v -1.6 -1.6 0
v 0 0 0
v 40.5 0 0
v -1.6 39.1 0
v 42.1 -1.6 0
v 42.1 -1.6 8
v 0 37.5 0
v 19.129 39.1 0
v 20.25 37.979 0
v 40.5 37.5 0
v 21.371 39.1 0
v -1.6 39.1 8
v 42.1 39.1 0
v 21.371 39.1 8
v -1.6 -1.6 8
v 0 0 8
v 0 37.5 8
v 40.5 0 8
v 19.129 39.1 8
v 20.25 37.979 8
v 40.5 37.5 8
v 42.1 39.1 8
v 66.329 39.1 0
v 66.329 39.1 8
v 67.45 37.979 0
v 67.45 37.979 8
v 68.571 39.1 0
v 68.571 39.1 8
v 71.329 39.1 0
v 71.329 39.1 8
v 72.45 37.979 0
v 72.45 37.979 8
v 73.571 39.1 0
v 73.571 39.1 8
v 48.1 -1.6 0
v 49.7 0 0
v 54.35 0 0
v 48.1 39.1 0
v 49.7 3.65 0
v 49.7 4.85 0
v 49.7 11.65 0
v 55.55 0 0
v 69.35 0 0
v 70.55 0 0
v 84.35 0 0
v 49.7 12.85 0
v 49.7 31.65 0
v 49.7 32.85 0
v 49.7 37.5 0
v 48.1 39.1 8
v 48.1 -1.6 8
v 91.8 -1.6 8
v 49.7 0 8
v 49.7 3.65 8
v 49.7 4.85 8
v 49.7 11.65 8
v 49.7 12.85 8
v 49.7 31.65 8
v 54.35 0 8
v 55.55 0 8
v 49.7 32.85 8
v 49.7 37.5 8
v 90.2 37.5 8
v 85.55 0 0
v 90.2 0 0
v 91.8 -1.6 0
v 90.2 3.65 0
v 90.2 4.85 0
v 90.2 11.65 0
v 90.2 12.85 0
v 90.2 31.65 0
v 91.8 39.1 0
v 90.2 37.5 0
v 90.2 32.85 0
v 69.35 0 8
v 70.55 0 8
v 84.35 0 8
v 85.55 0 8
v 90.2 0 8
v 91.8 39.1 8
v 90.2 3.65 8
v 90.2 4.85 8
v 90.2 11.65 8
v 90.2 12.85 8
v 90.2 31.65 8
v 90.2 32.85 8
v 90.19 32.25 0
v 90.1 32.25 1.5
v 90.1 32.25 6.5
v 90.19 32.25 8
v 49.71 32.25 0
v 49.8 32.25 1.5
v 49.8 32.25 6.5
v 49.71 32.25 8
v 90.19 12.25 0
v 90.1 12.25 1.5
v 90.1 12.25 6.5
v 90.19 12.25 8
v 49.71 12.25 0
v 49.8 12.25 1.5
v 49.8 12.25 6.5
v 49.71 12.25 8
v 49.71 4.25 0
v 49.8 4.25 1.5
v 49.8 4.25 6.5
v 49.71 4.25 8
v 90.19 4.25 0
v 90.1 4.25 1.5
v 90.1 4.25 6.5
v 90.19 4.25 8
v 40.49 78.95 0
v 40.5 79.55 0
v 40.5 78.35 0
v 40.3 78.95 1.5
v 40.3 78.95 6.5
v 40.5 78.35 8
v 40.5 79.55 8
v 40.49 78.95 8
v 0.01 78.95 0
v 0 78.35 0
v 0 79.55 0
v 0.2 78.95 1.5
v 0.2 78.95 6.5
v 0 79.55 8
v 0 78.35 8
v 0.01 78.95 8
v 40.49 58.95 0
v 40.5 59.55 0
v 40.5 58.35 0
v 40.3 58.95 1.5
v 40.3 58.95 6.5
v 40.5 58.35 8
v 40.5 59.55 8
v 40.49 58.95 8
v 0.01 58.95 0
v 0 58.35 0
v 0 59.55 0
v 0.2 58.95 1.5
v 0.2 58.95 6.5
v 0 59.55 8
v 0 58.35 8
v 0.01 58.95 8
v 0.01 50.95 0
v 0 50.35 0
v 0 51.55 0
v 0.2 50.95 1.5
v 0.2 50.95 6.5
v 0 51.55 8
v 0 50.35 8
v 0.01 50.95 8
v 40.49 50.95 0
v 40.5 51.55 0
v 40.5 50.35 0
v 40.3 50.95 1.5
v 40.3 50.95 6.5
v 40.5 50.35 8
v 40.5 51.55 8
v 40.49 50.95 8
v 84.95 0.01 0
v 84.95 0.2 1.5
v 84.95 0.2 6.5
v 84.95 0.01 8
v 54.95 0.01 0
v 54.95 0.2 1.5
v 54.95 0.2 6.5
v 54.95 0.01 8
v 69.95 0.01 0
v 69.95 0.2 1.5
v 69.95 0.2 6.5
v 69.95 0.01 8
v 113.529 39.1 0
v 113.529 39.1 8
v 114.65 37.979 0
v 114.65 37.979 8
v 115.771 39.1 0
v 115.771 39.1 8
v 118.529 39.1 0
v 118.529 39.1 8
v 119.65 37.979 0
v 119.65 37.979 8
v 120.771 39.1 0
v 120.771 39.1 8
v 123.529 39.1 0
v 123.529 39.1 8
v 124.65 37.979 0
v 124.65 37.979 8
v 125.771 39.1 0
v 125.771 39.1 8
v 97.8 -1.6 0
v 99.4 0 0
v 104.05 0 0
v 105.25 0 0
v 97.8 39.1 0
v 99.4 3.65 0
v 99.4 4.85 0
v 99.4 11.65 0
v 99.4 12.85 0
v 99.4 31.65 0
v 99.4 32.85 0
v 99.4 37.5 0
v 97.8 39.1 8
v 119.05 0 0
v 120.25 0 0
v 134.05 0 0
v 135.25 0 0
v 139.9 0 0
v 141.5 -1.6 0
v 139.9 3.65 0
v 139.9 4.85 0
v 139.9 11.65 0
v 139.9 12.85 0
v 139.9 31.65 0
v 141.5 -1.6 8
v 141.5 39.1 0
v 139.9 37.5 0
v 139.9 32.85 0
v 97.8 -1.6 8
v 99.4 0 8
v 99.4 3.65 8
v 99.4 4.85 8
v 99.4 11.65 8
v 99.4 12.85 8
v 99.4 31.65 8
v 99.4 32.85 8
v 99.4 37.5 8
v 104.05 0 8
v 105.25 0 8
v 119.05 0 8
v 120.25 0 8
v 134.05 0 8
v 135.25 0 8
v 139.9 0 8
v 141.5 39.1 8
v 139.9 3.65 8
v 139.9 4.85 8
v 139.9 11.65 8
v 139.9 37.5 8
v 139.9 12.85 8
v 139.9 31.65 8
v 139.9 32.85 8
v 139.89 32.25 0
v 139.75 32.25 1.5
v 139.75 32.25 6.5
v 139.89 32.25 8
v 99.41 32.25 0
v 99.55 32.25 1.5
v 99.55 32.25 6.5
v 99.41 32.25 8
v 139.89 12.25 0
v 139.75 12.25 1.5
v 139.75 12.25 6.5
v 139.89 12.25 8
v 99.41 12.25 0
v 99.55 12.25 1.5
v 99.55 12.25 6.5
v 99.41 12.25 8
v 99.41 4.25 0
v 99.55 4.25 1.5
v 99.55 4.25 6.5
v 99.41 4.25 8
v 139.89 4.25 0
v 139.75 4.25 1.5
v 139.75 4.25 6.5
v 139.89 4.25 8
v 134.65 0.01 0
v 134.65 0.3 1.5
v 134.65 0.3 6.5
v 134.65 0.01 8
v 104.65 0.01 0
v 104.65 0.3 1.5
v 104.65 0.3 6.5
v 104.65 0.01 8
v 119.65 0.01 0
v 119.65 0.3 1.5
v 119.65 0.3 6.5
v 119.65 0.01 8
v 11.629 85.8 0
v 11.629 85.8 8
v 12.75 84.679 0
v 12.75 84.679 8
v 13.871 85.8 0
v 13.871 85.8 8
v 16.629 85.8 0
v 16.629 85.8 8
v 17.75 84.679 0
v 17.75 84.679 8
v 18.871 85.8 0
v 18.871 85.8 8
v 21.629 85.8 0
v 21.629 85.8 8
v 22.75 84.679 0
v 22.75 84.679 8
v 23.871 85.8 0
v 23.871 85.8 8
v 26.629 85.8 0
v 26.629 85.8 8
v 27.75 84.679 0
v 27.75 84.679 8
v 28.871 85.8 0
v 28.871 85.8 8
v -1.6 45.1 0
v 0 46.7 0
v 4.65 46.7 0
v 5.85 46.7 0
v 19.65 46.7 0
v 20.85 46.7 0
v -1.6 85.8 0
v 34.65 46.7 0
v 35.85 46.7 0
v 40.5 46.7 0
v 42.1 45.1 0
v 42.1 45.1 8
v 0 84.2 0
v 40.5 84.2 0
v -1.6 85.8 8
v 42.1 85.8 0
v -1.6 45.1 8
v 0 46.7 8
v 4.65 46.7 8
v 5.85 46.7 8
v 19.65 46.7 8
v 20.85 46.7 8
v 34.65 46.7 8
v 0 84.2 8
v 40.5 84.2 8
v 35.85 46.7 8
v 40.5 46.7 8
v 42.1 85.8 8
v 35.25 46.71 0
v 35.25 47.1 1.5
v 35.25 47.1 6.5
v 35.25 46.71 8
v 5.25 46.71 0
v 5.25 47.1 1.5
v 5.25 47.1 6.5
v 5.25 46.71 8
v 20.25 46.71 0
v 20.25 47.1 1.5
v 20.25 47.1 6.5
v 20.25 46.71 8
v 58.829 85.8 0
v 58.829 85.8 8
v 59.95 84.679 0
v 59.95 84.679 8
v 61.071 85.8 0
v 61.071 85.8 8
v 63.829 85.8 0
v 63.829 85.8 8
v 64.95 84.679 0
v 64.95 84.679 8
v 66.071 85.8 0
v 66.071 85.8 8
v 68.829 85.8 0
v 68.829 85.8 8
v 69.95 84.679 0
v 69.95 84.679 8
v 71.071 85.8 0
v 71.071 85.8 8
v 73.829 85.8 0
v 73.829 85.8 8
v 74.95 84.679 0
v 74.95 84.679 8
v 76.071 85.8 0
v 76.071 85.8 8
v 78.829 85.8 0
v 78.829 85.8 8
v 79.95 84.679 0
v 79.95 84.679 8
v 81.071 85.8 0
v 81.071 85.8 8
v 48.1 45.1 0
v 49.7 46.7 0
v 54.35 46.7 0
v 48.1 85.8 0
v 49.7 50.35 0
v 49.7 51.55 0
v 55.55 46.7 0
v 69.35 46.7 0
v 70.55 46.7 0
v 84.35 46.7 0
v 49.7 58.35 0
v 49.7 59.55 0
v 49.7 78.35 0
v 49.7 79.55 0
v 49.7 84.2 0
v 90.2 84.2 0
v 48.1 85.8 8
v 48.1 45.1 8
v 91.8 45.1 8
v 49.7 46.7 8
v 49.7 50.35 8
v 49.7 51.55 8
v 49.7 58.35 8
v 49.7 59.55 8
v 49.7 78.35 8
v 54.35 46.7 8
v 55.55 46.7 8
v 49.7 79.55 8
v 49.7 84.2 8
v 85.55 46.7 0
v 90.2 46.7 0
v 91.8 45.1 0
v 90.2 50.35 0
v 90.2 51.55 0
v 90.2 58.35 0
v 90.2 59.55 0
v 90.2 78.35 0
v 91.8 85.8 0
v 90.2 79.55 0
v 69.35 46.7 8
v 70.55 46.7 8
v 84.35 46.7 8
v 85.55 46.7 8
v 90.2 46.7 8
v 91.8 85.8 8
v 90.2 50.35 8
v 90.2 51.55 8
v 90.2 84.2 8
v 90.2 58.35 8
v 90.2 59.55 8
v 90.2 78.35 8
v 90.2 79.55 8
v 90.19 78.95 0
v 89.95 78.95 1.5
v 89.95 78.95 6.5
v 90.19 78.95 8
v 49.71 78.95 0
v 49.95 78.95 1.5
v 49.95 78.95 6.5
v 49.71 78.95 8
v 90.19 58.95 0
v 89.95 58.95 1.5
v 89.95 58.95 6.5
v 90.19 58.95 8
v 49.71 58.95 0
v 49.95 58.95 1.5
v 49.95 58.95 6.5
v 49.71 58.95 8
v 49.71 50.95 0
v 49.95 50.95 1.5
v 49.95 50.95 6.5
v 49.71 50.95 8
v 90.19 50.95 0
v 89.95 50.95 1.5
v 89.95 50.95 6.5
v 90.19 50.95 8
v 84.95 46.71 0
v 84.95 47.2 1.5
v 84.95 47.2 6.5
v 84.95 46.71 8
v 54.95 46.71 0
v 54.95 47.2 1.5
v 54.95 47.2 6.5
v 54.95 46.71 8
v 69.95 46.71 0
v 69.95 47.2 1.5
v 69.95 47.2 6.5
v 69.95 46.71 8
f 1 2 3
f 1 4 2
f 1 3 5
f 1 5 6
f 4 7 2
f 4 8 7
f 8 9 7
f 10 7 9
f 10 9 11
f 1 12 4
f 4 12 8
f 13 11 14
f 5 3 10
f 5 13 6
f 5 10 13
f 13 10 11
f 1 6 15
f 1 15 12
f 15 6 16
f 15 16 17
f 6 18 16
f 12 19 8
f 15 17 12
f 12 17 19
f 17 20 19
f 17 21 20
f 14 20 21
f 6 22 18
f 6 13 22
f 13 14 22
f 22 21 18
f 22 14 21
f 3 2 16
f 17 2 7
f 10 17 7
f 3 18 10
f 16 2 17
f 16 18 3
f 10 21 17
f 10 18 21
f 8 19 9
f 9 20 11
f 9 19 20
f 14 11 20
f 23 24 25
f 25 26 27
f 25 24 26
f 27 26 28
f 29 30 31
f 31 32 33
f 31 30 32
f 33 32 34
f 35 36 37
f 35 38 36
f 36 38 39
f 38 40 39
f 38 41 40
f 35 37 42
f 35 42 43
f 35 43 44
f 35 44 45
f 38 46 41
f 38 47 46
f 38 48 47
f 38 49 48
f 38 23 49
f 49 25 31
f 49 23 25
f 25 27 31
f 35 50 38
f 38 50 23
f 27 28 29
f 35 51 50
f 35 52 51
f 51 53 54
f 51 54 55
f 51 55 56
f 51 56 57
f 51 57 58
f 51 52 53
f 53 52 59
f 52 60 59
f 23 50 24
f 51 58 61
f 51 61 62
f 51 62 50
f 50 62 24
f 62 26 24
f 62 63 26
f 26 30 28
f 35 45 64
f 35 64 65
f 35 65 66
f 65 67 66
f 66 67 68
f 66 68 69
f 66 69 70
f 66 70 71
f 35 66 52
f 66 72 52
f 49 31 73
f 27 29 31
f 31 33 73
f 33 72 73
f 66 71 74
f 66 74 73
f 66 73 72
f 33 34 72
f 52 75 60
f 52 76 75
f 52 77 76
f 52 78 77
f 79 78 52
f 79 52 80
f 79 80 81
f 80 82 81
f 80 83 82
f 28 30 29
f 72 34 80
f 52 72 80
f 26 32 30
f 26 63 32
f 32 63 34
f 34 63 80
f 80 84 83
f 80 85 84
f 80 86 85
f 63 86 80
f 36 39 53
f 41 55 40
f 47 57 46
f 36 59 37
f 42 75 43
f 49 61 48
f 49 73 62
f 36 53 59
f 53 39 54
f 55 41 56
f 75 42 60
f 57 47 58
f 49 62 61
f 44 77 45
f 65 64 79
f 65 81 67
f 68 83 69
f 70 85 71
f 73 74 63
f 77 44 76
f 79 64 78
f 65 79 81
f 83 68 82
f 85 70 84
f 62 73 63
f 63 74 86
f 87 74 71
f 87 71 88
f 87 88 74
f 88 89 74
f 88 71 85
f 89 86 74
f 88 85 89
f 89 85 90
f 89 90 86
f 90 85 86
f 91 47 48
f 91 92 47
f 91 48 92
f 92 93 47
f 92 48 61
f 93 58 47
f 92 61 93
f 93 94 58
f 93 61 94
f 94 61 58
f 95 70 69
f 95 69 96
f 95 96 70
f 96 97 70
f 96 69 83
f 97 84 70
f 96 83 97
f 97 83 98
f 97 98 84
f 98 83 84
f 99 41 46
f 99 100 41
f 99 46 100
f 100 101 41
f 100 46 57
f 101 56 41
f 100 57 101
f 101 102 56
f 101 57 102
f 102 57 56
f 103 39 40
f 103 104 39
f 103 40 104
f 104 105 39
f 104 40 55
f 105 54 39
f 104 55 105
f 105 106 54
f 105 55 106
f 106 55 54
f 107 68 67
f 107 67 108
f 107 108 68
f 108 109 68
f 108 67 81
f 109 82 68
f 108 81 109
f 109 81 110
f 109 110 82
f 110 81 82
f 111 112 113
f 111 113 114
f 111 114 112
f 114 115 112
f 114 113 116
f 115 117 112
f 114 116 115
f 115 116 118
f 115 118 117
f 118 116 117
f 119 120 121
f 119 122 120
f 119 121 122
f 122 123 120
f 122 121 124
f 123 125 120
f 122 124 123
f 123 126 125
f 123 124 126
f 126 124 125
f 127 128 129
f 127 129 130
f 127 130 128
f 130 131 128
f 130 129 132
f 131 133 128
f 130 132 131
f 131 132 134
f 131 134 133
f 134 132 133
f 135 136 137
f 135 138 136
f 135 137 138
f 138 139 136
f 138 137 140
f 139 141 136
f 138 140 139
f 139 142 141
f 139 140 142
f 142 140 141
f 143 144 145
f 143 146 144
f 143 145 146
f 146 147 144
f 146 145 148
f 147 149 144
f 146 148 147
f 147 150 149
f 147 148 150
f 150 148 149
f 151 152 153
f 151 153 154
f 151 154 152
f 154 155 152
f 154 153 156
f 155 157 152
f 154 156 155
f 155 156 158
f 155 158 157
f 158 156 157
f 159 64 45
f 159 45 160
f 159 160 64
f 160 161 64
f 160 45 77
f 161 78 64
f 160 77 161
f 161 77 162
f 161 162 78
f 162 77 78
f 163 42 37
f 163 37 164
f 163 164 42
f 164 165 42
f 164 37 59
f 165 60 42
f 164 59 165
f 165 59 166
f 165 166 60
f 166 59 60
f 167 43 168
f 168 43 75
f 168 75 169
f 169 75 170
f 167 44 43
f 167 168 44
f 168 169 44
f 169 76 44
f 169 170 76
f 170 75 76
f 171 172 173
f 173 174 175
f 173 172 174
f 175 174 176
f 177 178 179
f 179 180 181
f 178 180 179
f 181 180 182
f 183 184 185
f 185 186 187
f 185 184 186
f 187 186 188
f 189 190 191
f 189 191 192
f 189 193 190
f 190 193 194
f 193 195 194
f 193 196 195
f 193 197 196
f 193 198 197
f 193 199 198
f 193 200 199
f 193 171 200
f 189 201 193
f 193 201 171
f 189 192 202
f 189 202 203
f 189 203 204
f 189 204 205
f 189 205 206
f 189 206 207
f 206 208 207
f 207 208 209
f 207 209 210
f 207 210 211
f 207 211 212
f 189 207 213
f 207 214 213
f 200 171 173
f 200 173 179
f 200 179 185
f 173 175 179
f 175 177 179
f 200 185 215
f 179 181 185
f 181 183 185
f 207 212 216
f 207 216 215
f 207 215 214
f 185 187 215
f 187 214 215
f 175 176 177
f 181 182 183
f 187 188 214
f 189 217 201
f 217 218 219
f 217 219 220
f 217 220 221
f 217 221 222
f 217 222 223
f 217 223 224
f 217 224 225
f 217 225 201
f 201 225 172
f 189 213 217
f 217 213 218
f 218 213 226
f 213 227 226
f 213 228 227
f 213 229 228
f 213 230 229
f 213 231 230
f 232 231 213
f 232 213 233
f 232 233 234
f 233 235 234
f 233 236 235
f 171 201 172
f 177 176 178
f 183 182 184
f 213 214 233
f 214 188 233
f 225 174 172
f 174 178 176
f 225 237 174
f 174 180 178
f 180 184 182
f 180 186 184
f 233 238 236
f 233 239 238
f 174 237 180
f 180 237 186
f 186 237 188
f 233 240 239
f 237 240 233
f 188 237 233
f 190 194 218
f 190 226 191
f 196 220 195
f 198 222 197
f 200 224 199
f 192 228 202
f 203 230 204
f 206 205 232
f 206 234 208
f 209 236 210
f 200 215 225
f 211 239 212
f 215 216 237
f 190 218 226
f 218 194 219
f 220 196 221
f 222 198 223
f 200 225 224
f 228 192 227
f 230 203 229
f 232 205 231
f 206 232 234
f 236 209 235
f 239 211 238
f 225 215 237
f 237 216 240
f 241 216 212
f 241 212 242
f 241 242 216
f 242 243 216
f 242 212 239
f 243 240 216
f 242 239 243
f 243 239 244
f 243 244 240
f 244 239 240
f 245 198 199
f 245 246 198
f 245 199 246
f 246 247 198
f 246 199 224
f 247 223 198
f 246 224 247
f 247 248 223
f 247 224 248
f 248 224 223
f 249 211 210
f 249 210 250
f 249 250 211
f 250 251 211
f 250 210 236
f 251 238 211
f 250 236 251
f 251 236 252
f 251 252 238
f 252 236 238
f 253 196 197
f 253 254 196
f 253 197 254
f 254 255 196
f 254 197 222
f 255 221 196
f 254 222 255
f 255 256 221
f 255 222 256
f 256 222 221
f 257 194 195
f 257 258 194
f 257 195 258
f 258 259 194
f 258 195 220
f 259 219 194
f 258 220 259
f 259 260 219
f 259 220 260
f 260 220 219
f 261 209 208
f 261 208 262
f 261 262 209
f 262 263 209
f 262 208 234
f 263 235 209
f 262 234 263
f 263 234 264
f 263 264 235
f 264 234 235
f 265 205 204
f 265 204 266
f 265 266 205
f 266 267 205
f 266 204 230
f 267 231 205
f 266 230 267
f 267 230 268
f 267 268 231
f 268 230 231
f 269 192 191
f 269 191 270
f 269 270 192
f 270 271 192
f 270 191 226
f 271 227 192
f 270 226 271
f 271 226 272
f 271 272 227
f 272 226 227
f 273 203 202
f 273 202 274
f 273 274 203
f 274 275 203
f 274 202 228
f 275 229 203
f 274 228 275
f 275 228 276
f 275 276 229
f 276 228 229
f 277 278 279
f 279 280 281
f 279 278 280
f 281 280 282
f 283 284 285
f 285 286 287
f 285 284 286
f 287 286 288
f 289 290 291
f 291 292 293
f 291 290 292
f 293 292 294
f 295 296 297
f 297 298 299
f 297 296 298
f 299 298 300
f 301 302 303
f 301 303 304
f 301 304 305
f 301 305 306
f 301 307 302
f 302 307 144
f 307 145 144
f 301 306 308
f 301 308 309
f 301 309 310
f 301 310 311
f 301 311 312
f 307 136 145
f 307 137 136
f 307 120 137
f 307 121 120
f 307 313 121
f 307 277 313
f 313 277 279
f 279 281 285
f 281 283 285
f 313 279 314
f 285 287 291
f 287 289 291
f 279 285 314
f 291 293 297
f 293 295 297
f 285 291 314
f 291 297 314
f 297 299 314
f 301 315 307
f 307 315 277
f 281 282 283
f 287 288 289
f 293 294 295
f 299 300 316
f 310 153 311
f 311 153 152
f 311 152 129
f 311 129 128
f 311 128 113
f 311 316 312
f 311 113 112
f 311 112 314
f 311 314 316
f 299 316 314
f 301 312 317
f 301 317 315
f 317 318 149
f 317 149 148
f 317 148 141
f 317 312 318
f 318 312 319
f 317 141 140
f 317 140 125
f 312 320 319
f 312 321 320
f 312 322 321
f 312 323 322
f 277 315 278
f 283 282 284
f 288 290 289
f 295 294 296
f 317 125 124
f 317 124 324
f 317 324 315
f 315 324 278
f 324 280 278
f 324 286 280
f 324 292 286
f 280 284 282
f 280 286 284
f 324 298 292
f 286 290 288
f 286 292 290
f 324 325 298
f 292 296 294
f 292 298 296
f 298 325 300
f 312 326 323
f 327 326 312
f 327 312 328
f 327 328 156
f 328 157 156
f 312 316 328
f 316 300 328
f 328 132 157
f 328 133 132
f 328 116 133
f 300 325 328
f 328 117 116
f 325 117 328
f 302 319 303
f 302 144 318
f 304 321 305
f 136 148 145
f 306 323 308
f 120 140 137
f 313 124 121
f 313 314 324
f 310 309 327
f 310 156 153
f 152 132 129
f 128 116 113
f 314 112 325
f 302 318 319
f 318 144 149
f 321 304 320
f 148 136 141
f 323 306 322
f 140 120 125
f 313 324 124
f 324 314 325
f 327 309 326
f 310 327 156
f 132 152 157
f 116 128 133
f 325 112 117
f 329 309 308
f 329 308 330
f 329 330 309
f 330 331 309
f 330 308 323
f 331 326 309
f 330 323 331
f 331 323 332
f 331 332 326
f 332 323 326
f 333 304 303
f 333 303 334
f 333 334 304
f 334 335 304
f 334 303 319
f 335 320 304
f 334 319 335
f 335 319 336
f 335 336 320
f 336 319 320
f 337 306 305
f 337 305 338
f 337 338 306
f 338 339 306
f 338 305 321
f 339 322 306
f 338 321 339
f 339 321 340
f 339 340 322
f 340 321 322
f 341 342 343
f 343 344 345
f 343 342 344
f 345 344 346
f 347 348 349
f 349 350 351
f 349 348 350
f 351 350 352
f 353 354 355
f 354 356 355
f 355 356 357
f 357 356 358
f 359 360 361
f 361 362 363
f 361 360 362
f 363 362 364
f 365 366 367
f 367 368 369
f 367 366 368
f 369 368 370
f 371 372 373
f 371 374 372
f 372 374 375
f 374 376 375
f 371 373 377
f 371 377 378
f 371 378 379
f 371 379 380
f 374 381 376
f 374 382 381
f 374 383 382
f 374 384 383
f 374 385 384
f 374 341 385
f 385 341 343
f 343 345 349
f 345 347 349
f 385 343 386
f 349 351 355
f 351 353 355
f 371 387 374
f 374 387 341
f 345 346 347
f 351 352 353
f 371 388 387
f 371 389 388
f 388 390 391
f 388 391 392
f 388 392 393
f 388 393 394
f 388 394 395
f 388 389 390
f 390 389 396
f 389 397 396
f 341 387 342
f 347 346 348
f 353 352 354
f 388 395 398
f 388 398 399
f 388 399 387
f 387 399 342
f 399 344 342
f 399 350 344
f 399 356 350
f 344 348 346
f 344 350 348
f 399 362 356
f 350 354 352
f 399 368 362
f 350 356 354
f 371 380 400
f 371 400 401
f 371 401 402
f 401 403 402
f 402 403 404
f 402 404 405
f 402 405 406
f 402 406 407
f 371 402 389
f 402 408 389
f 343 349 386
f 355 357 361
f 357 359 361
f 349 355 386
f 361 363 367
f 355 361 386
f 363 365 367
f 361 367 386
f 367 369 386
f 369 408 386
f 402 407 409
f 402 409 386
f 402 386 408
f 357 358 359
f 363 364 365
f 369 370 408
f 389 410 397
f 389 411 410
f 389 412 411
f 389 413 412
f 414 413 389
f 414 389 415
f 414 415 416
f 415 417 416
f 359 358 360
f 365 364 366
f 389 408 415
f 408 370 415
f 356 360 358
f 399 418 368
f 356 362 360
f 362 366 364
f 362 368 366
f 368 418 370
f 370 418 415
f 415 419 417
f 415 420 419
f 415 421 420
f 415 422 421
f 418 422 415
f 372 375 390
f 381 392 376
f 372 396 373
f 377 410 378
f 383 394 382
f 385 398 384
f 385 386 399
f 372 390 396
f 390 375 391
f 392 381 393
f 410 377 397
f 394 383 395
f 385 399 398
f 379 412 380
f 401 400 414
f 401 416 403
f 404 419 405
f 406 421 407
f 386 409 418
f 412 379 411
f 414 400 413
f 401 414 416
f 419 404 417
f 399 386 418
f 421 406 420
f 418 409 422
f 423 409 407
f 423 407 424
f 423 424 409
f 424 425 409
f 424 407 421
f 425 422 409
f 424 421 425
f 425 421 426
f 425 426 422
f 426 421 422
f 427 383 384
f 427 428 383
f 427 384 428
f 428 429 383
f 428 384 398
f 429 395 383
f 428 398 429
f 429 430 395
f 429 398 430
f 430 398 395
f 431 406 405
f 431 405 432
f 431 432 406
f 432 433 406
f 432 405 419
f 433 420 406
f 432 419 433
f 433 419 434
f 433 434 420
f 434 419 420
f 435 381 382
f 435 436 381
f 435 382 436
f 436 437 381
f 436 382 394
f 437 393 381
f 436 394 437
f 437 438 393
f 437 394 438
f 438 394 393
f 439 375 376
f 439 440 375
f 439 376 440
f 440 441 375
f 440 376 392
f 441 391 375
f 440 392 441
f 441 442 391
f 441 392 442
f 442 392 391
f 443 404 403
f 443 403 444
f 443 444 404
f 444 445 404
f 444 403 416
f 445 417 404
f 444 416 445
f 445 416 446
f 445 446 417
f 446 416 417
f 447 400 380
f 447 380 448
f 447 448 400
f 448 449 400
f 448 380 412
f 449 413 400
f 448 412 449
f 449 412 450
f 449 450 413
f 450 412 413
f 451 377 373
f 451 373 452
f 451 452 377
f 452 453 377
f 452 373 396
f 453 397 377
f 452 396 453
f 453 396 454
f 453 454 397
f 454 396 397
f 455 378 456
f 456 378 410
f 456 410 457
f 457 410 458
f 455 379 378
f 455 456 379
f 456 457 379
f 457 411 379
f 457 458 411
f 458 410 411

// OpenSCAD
// Tolerance test rings: thin slices of the Mochi cavity (40.5 x 37.5) with
// crush ribs of different heights, same rib layout as mochi_fit.scad.
// Slide the electronics frame through each one and pick the snug one.
// Ring k has k notches on top. Print as is, rings standing up, no supports.

$fn = 32;

// [side rib, floor rib] per ring
ribs  = [[0, 0], [0.10, 0.2], [0.15, 0.3], [0.20, 0.4], [0.25, 0.5]];
depth = 8;          // ring height on the bed
wall  = 1.6;
base  = 1.2;        // rib width at the wall
lead  = 1.5;        // ribs taper at both ends so the frame enters either way
gap   = 6;          // space between rings

cav = [40.5, 37.5];                 // cavity x, z
side_z  = [6, 14, 34] - [1.75, 1.75, 1.75];   // rib heights above the cavity floor
floor_x = [8, 23, 38] - [2.75, 2.75, 2.75];   // rib positions from the left wall

module rib(h) {
    // triangle profile, height h, tapering over `lead` at both ends
    if (h > 0) hull() {
        translate([0, 0, lead]) linear_extrude(depth - 2 * lead)
            polygon([[-base / 2, 0], [base / 2, 0], [0, h]]);
        linear_extrude(depth) polygon([[-base / 2, 0], [base / 2, 0], [0, 0.01]]);
    }
}

module ring(side, flo, k) {
    difference() {
        translate([-wall, -wall, 0]) cube([cav[0] + 2 * wall, cav[1] + 2 * wall, depth]);
        translate([0, 0, -1]) cube([cav[0], cav[1], depth + 2]);
        // k notches on the top edge
        for (n = [0 : k - 1]) translate([cav[0] / 2 - (k - 1) * 2.5 + n * 5, cav[1] + wall + 0.01, depth / 2])
            rotate([0, 0, 45]) cube([1.6, 1.6, depth + 2], center = true);
    }
    // ribs: x = side walls, y = floor (ring lies with the cavity's z along +y)
    for (z = side_z) {
        translate([0, z, 0]) rotate([0, 0, -90]) rib(side);
        translate([cav[0], z, 0]) rotate([0, 0, 90]) rib(side);
    }
    for (x = floor_x) translate([x, 0, 0]) rib(flo);
}

for (i = [0 : len(ribs) - 1])
    translate([(i % 3) * (cav[0] + 2 * wall + gap), floor(i / 3) * (cav[1] + 2 * wall + gap), 0])
        ring(ribs[i][0], ribs[i][1], i + 1);
